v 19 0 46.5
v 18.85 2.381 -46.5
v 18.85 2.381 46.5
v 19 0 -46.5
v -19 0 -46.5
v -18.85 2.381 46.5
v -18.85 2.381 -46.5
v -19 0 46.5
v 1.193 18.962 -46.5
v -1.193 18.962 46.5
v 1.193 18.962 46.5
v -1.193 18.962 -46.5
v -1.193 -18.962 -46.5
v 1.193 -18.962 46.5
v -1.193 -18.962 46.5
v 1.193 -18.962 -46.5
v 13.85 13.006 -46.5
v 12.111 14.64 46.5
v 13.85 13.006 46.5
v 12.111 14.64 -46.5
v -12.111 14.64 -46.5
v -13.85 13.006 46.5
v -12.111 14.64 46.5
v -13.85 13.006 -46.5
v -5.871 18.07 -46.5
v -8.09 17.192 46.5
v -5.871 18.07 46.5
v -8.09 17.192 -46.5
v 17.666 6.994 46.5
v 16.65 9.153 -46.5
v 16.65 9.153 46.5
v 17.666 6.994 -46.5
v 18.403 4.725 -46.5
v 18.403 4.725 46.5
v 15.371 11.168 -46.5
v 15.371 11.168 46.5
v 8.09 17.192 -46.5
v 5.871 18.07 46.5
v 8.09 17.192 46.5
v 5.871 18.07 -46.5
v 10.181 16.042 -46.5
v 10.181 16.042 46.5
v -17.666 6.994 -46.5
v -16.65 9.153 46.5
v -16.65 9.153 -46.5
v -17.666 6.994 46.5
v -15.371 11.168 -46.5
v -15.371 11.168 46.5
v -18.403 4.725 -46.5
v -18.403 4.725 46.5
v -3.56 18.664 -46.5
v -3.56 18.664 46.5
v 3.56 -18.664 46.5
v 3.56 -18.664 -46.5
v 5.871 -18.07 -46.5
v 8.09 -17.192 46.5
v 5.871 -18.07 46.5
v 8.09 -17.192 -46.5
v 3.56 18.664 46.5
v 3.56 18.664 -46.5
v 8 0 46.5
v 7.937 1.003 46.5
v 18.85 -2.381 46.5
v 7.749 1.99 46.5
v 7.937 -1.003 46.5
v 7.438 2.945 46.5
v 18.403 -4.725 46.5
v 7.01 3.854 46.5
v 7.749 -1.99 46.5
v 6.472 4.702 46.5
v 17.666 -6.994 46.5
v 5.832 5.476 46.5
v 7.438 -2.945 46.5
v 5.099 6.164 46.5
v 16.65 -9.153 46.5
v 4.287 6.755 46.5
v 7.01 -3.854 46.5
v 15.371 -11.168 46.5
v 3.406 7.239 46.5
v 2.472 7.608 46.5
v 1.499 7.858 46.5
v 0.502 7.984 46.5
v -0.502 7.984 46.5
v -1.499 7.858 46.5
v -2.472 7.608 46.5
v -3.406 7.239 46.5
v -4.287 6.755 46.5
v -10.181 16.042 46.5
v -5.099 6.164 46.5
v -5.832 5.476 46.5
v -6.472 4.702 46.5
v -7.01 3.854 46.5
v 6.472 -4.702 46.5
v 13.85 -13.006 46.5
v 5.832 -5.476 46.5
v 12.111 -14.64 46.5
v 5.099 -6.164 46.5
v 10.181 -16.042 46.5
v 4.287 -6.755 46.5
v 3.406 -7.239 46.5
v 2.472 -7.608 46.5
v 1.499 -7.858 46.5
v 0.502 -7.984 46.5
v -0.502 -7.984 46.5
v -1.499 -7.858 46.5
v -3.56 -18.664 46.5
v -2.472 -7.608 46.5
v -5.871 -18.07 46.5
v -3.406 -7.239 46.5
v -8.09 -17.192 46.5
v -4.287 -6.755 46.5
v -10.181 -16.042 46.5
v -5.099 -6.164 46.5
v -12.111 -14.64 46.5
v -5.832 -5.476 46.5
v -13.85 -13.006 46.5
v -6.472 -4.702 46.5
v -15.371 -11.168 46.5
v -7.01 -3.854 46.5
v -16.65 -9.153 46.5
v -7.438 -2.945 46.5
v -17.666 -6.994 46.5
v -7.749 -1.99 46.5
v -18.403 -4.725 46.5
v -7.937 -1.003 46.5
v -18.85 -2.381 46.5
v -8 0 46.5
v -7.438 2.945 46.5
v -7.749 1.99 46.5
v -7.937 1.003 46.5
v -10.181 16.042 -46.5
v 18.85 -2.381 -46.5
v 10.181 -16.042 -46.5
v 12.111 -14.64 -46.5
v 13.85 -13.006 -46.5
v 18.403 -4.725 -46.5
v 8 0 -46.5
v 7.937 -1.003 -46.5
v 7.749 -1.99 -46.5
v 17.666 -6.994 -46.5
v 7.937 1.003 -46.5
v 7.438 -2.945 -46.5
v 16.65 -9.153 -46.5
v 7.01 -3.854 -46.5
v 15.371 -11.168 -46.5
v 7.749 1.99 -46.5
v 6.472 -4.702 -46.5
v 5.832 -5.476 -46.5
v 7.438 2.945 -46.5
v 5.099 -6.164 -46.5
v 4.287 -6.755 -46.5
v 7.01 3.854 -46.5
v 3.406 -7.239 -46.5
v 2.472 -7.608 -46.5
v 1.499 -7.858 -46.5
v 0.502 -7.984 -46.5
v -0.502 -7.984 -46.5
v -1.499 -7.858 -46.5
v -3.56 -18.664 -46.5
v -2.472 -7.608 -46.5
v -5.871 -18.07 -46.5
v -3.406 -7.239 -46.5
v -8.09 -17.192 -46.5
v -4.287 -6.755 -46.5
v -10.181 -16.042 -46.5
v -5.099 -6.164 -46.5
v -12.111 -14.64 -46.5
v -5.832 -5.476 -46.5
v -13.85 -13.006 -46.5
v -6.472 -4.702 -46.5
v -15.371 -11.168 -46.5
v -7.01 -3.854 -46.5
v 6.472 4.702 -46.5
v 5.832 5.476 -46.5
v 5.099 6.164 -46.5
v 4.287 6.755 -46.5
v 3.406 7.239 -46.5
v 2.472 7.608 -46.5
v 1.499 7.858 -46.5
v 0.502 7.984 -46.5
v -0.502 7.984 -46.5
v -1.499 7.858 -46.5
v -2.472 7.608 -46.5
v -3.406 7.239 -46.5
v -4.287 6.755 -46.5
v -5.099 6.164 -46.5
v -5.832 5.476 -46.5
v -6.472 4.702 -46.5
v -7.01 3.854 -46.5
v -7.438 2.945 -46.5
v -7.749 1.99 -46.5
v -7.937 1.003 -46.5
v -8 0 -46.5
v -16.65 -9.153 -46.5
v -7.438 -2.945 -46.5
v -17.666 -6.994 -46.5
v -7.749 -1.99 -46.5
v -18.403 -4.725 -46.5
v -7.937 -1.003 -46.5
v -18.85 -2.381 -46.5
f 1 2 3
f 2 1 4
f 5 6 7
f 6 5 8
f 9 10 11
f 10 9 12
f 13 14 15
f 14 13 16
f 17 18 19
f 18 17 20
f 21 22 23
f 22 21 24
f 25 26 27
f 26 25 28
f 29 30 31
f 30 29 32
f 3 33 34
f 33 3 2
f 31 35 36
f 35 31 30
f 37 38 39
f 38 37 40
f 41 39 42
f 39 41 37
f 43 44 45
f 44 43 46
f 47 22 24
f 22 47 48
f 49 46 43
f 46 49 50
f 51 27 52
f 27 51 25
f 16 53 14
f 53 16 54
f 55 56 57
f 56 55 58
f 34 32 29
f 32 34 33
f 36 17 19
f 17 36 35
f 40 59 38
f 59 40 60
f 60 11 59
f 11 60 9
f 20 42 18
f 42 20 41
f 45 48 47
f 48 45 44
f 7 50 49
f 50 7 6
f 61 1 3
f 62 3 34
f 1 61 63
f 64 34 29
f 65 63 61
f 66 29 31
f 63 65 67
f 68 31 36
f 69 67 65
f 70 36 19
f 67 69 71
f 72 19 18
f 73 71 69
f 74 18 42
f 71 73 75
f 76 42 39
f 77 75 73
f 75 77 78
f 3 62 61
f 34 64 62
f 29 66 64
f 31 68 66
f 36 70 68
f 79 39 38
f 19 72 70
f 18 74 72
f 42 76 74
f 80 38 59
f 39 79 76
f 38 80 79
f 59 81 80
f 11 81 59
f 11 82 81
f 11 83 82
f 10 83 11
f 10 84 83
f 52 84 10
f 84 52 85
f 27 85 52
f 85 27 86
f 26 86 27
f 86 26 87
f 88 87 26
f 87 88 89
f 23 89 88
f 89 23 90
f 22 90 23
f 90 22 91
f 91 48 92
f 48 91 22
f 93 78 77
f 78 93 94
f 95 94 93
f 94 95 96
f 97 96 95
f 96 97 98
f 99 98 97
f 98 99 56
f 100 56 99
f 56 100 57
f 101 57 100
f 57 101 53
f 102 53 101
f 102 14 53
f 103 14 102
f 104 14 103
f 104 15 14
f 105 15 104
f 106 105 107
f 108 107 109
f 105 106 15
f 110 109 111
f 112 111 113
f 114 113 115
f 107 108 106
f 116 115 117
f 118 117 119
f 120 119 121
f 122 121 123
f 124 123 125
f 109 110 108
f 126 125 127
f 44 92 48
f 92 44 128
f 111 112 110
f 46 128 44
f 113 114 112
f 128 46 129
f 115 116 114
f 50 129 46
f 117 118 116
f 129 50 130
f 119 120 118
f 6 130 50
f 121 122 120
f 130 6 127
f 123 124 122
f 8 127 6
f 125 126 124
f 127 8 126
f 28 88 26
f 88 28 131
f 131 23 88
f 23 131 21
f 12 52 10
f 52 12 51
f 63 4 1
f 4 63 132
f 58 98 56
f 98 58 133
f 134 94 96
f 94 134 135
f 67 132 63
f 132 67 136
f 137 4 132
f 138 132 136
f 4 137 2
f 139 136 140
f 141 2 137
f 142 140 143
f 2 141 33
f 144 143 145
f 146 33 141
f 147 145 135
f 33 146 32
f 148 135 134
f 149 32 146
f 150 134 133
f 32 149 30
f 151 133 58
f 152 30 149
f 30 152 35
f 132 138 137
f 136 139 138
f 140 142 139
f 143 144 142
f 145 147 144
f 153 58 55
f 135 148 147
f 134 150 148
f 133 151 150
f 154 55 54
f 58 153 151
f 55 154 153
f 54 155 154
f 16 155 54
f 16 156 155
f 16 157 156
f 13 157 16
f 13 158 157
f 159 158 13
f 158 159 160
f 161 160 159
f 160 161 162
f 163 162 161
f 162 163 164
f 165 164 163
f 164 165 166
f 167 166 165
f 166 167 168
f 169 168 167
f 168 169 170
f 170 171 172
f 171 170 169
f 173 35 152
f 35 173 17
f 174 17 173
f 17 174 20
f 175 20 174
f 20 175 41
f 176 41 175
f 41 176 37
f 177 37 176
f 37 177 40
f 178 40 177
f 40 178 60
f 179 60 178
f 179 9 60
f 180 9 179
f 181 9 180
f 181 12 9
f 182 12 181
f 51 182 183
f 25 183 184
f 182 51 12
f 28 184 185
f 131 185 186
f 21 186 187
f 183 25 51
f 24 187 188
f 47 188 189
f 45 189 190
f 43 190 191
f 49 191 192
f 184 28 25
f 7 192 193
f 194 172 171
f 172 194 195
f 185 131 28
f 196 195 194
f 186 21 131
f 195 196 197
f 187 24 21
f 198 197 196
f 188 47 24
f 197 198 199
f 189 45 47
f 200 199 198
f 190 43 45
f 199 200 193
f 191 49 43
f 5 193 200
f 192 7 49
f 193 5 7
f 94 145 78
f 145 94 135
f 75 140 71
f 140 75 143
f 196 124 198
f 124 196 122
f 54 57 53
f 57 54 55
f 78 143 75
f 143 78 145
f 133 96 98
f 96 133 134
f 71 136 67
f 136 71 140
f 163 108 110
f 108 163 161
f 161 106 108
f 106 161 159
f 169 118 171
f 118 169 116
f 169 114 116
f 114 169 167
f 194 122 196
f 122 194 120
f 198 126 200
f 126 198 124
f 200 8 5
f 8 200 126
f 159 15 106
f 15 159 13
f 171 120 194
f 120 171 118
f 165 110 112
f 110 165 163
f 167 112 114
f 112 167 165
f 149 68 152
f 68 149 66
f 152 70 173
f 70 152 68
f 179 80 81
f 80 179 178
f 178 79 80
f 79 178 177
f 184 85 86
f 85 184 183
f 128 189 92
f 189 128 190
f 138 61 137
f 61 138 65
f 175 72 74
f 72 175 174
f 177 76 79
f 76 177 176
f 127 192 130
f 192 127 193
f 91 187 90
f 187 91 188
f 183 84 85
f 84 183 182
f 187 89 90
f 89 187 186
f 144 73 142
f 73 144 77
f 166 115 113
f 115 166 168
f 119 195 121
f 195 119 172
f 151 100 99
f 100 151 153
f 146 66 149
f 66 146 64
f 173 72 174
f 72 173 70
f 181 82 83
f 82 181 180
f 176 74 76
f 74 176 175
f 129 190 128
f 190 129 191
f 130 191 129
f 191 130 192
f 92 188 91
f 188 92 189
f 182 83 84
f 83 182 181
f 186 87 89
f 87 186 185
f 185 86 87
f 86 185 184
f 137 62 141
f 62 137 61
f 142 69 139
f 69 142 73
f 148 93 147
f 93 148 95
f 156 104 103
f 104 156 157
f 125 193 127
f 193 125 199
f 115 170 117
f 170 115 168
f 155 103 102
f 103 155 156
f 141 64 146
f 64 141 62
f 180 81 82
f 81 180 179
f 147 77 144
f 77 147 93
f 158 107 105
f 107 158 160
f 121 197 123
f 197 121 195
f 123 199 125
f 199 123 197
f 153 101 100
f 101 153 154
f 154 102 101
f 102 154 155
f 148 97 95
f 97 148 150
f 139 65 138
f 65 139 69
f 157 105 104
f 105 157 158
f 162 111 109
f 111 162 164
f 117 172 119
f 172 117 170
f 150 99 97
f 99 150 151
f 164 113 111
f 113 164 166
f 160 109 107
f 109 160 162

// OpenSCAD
$fn = 50;


difference() {
	union() {
		translate(v = [0, 0, -46.5000000000]) {
			cylinder(h = 93, r = 19.0000000000);
		}
	}
	union() {
		translate(v = [0, 0, -100.0000000000]) {
			cylinder(h = 200, r = 8);
		}
	}
}
